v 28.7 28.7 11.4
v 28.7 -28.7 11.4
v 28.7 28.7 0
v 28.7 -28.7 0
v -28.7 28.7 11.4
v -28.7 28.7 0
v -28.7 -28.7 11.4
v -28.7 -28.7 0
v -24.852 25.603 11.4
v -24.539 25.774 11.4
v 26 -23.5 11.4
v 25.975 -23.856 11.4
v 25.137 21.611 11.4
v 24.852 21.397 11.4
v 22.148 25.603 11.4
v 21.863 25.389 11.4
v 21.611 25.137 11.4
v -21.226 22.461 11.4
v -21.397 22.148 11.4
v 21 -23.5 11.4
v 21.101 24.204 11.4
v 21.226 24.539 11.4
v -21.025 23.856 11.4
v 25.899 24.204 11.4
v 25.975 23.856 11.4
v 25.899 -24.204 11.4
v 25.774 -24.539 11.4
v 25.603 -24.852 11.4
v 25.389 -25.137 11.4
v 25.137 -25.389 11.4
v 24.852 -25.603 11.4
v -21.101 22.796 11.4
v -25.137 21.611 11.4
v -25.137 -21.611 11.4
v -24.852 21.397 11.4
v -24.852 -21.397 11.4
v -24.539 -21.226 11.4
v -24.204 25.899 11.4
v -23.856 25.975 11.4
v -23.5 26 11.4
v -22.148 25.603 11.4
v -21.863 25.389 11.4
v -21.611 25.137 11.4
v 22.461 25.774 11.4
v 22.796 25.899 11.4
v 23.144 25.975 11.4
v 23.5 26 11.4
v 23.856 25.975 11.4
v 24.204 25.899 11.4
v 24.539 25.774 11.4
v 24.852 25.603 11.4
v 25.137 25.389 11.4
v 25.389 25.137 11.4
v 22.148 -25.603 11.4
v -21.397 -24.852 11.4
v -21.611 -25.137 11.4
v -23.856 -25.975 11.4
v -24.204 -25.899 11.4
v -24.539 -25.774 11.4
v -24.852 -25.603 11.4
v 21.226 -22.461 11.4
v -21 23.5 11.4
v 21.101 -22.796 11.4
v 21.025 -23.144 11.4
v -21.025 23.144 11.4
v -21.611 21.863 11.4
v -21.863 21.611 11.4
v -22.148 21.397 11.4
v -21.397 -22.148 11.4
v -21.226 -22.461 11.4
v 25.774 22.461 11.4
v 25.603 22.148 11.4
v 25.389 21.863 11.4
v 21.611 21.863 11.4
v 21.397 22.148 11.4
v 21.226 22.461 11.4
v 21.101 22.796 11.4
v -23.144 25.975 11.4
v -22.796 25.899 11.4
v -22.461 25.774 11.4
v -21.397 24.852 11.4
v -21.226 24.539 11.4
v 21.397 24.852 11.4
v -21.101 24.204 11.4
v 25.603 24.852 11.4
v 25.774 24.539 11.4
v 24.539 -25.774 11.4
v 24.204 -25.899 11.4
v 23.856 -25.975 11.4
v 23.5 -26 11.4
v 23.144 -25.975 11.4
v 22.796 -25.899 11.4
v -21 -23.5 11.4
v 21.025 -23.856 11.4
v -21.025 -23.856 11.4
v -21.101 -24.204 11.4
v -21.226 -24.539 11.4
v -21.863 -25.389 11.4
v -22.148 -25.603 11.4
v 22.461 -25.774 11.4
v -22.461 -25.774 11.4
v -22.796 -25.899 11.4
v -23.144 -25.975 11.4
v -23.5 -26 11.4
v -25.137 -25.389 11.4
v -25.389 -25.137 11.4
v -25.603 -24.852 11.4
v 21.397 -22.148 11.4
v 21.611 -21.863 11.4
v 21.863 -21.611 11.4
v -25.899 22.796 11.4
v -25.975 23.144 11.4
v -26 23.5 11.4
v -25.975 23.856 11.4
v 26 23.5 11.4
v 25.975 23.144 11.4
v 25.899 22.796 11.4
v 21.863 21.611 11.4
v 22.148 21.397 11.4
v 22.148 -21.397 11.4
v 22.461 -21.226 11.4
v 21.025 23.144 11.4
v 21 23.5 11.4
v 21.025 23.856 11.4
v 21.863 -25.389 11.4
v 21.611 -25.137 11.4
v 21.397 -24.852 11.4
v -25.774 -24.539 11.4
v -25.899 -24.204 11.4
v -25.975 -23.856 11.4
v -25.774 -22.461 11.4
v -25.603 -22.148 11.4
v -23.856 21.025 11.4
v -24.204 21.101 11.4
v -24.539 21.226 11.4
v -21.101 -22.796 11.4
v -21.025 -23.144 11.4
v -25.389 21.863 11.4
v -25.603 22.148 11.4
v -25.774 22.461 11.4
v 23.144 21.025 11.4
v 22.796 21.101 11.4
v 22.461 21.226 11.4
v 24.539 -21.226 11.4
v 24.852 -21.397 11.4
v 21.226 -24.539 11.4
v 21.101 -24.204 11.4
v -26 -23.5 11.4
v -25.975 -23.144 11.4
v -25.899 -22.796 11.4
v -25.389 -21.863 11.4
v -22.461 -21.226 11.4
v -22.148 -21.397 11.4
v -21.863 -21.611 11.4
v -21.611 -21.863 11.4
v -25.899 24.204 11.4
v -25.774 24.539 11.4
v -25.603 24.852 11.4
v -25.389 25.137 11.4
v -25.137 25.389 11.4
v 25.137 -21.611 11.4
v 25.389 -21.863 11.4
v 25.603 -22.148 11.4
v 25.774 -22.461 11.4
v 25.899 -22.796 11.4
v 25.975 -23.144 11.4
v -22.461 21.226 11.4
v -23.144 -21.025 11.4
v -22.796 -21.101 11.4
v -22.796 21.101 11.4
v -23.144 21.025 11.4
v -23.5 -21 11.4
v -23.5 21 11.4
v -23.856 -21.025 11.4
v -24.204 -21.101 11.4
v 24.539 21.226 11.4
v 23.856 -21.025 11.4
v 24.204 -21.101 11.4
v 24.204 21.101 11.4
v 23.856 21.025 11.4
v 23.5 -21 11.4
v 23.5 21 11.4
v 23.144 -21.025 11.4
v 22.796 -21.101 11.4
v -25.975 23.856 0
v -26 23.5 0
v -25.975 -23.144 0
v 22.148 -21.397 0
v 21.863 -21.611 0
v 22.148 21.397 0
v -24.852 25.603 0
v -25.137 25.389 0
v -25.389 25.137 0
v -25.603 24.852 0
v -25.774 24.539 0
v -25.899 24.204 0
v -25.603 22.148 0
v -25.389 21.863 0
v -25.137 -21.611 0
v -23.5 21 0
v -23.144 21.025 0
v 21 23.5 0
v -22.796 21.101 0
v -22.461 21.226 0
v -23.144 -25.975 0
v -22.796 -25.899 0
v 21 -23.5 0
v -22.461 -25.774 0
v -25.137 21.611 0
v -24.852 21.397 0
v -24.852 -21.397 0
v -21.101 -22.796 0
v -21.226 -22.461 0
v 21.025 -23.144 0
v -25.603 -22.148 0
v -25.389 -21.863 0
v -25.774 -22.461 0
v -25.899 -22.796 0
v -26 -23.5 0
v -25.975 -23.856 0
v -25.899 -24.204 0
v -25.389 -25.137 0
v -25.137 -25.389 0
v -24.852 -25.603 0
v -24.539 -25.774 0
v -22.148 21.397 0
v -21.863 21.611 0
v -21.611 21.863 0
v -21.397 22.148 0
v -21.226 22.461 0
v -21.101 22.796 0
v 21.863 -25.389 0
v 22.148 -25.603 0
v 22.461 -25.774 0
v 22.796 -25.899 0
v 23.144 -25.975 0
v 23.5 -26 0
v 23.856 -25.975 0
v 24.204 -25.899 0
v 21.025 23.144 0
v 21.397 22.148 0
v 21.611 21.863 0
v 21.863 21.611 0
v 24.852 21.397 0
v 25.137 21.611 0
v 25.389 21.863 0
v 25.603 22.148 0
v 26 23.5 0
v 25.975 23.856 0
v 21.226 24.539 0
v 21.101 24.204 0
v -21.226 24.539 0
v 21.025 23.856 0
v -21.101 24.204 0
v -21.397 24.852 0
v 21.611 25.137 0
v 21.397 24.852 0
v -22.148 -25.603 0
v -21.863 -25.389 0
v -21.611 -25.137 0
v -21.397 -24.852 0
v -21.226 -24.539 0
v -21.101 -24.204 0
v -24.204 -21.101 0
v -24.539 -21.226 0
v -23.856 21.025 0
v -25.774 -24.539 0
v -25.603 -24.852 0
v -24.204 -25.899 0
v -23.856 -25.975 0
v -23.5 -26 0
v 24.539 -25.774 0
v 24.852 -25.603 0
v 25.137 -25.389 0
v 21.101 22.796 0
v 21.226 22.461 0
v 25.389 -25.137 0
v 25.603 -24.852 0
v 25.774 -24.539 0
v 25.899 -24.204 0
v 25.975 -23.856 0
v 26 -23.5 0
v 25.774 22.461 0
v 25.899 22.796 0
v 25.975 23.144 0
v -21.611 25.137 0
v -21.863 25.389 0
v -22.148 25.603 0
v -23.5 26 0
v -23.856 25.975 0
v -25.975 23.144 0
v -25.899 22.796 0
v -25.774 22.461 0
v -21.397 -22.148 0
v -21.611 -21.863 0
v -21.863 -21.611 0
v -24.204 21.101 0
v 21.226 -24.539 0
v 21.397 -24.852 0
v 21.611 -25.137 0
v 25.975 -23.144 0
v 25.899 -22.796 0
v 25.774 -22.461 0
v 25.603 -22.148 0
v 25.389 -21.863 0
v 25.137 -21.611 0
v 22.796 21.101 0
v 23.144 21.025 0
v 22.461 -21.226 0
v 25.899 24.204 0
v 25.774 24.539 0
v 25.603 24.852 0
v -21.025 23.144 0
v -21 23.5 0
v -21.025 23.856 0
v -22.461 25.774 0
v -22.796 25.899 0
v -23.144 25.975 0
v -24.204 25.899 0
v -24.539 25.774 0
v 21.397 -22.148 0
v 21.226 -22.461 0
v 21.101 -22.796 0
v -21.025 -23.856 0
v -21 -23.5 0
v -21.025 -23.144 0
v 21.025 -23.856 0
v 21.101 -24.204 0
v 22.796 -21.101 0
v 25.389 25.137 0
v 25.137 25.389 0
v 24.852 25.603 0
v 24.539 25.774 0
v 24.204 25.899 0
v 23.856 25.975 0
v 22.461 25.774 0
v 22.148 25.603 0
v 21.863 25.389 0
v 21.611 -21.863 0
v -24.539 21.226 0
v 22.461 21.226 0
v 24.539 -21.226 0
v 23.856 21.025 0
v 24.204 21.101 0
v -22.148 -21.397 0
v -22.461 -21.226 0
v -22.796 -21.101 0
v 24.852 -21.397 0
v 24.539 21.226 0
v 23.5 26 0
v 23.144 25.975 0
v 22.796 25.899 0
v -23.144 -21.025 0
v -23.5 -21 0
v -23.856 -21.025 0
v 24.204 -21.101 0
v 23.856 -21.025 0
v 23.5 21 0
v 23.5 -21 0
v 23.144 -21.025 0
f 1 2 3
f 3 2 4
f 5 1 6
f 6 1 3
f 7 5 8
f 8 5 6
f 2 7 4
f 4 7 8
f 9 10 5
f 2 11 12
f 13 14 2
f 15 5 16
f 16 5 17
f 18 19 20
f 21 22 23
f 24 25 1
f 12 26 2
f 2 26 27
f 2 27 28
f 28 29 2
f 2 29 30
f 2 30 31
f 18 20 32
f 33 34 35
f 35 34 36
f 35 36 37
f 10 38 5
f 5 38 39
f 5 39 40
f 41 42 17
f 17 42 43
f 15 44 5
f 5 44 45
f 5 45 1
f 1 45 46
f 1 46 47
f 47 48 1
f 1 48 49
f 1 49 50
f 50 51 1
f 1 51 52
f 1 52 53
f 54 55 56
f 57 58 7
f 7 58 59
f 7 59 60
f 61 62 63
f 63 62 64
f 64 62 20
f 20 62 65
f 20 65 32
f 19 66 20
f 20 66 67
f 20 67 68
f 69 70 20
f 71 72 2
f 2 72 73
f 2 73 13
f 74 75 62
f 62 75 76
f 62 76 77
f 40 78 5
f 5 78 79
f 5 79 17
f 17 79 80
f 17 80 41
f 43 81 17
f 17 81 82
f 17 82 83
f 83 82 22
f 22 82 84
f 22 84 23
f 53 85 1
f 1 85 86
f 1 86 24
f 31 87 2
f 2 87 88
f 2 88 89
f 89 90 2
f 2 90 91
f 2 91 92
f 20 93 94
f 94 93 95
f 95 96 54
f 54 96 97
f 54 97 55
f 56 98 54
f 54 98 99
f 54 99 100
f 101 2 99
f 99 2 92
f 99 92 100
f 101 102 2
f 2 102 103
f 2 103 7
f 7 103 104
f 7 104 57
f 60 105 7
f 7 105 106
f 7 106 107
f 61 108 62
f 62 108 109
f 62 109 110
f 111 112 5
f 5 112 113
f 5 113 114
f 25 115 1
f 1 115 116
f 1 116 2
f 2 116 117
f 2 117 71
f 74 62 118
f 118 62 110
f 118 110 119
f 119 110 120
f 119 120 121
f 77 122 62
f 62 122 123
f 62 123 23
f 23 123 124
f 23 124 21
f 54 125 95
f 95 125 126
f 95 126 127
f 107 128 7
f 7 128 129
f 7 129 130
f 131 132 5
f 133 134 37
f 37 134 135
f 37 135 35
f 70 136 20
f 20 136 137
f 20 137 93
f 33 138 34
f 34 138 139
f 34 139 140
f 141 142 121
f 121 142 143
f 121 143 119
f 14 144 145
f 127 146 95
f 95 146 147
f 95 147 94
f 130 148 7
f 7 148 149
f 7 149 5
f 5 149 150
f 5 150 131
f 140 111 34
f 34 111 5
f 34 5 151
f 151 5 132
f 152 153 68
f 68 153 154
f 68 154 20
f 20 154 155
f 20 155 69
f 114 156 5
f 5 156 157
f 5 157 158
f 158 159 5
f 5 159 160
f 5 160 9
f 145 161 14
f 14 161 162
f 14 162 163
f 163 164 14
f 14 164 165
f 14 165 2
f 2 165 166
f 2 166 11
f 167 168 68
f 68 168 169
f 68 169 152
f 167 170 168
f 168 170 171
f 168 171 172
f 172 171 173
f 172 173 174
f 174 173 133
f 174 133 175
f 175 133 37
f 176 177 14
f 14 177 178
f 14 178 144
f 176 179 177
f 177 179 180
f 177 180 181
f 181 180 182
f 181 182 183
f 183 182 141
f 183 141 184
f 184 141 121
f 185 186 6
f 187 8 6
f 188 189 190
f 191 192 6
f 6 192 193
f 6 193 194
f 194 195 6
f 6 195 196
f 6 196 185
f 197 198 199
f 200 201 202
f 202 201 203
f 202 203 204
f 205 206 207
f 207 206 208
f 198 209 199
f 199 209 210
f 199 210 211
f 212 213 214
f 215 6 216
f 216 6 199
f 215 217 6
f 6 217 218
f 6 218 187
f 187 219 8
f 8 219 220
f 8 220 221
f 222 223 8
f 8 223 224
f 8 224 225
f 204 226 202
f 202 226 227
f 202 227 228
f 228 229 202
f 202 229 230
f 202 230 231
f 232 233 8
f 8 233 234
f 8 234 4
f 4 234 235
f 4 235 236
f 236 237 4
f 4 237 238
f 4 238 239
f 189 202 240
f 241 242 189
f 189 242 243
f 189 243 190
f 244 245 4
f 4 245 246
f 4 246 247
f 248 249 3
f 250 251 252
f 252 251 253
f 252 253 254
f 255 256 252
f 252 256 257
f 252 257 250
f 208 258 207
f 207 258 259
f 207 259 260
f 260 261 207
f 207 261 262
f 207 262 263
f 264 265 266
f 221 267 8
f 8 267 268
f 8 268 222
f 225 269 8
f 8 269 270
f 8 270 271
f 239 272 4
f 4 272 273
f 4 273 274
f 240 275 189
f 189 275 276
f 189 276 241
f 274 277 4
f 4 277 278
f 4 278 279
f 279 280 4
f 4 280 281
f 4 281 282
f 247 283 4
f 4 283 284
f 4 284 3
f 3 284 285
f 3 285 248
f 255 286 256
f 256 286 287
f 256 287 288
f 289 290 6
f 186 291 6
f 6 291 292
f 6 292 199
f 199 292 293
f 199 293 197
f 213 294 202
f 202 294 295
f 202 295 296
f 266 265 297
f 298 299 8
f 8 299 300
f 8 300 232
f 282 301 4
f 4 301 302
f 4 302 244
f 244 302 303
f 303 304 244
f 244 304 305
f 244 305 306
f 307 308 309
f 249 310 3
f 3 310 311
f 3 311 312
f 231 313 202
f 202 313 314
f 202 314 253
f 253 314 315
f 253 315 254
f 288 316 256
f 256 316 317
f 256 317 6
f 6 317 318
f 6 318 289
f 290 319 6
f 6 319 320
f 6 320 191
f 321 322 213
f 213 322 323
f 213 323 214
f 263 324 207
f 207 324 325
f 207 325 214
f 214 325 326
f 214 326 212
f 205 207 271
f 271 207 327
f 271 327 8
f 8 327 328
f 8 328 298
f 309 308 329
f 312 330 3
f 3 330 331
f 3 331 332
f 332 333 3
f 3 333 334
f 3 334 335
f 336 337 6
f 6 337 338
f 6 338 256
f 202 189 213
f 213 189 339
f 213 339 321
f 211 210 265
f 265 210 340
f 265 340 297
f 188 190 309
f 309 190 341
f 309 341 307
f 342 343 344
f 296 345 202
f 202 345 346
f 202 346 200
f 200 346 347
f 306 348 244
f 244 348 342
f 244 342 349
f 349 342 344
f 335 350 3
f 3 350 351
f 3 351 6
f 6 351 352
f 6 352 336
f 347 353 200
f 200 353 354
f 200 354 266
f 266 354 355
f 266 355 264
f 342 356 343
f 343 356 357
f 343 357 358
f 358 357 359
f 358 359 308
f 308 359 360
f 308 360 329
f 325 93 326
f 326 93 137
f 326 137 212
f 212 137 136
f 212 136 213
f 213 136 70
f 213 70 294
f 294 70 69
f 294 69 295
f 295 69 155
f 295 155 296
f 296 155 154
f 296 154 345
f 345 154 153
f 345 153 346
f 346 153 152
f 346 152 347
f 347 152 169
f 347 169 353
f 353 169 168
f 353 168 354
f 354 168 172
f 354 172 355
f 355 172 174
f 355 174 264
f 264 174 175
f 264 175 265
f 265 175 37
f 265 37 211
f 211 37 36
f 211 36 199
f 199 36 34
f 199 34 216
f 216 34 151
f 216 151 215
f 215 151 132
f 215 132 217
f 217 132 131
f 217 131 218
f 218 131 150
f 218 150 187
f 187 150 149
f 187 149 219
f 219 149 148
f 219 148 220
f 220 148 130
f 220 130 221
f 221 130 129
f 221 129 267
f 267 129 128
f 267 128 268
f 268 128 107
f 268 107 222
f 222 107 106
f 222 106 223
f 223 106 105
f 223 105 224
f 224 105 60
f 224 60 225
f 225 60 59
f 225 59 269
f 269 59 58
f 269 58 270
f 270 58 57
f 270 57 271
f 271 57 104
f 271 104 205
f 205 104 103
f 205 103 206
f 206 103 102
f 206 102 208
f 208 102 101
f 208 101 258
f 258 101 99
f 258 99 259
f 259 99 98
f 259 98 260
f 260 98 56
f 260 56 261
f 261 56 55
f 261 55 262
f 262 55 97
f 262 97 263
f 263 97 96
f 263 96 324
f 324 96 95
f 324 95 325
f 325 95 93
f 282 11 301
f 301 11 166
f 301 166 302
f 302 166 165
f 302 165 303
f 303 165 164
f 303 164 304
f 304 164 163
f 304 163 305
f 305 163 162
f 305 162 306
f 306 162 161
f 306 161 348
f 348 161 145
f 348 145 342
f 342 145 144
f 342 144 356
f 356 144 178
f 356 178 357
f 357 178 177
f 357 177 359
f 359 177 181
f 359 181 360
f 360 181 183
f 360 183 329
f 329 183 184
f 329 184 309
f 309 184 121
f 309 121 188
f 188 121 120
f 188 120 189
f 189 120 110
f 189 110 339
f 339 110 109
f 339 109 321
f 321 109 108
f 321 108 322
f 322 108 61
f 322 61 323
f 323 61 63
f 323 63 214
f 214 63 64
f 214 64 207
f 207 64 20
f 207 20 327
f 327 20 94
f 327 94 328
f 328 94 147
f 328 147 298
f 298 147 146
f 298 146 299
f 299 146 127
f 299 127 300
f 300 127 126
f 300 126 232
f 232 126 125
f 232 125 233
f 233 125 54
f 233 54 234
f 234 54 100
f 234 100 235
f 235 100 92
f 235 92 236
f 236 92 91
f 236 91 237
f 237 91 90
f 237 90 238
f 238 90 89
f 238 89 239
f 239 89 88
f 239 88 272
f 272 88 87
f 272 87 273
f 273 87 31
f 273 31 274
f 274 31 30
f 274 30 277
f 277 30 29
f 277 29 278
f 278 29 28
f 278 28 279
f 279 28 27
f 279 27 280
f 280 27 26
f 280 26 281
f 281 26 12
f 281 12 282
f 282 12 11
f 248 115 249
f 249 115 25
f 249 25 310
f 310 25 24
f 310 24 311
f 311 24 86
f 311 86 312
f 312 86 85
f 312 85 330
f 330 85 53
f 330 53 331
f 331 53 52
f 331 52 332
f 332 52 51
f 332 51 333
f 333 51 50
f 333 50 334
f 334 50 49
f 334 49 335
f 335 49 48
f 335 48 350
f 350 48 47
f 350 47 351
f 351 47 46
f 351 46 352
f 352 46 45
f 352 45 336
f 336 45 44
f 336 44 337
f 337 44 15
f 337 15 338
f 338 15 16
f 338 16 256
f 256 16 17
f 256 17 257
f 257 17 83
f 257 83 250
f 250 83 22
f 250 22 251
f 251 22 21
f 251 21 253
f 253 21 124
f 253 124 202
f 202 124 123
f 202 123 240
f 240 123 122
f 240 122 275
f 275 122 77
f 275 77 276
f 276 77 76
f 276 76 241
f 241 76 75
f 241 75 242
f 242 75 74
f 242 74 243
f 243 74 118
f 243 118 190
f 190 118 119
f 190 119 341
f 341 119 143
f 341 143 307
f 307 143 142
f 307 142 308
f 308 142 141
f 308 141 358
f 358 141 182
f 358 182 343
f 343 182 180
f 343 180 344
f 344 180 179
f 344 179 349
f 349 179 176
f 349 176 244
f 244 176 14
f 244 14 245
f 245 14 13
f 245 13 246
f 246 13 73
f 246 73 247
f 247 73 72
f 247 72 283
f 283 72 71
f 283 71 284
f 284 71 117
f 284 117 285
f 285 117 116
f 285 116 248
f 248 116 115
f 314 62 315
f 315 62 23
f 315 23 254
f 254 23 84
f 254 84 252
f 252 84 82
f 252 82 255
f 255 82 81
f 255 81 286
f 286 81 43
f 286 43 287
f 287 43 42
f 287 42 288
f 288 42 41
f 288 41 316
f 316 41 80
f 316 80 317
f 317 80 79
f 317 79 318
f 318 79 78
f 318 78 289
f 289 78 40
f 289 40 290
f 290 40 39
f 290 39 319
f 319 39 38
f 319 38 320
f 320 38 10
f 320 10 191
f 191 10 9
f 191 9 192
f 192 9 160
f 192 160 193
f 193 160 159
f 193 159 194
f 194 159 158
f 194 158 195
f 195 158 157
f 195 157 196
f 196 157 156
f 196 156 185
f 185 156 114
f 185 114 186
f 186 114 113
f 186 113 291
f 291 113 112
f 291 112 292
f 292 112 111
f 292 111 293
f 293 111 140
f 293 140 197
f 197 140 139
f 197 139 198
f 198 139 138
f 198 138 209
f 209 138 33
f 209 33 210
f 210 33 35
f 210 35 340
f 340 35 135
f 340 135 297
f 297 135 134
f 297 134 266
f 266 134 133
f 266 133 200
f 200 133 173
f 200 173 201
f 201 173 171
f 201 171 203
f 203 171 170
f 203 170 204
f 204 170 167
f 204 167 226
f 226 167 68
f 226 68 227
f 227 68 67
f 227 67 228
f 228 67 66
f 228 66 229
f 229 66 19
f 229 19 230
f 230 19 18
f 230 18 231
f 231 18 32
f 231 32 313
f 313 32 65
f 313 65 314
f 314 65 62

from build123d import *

# Parameters (mm, degrees)
AUFSATZ_LINEAR_AUSTRAGEN1_DEPTH = 11.4
F_5_0_5_DURCHMESSER_BOHRUNG1_D  = 5


with BuildPart() as part:
    # Skizze1 → Aufsatz-Linear austragen1 (new body)
    with BuildSketch(Plane.XY):
        Polygon((28.7, -28.7), (28.7, 0), (28.7, 28.7), (-28.7, 28.7), (-28.7, -28.7), align=None)
    extrude(amount=AUFSATZ_LINEAR_AUSTRAGEN1_DEPTH)

    # Ø5.0 (5) Durchmesser Bohrung1 (through all)
    with Locations(Plane.XY.offset(11.4)):
        with Locations((-23.5, 23.5), (23.5, 23.5), (23.5, -23.5), (-23.5, -23.5)):
            Hole(F_5_0_5_DURCHMESSER_BOHRUNG1_D / 2)


solid = part.part
